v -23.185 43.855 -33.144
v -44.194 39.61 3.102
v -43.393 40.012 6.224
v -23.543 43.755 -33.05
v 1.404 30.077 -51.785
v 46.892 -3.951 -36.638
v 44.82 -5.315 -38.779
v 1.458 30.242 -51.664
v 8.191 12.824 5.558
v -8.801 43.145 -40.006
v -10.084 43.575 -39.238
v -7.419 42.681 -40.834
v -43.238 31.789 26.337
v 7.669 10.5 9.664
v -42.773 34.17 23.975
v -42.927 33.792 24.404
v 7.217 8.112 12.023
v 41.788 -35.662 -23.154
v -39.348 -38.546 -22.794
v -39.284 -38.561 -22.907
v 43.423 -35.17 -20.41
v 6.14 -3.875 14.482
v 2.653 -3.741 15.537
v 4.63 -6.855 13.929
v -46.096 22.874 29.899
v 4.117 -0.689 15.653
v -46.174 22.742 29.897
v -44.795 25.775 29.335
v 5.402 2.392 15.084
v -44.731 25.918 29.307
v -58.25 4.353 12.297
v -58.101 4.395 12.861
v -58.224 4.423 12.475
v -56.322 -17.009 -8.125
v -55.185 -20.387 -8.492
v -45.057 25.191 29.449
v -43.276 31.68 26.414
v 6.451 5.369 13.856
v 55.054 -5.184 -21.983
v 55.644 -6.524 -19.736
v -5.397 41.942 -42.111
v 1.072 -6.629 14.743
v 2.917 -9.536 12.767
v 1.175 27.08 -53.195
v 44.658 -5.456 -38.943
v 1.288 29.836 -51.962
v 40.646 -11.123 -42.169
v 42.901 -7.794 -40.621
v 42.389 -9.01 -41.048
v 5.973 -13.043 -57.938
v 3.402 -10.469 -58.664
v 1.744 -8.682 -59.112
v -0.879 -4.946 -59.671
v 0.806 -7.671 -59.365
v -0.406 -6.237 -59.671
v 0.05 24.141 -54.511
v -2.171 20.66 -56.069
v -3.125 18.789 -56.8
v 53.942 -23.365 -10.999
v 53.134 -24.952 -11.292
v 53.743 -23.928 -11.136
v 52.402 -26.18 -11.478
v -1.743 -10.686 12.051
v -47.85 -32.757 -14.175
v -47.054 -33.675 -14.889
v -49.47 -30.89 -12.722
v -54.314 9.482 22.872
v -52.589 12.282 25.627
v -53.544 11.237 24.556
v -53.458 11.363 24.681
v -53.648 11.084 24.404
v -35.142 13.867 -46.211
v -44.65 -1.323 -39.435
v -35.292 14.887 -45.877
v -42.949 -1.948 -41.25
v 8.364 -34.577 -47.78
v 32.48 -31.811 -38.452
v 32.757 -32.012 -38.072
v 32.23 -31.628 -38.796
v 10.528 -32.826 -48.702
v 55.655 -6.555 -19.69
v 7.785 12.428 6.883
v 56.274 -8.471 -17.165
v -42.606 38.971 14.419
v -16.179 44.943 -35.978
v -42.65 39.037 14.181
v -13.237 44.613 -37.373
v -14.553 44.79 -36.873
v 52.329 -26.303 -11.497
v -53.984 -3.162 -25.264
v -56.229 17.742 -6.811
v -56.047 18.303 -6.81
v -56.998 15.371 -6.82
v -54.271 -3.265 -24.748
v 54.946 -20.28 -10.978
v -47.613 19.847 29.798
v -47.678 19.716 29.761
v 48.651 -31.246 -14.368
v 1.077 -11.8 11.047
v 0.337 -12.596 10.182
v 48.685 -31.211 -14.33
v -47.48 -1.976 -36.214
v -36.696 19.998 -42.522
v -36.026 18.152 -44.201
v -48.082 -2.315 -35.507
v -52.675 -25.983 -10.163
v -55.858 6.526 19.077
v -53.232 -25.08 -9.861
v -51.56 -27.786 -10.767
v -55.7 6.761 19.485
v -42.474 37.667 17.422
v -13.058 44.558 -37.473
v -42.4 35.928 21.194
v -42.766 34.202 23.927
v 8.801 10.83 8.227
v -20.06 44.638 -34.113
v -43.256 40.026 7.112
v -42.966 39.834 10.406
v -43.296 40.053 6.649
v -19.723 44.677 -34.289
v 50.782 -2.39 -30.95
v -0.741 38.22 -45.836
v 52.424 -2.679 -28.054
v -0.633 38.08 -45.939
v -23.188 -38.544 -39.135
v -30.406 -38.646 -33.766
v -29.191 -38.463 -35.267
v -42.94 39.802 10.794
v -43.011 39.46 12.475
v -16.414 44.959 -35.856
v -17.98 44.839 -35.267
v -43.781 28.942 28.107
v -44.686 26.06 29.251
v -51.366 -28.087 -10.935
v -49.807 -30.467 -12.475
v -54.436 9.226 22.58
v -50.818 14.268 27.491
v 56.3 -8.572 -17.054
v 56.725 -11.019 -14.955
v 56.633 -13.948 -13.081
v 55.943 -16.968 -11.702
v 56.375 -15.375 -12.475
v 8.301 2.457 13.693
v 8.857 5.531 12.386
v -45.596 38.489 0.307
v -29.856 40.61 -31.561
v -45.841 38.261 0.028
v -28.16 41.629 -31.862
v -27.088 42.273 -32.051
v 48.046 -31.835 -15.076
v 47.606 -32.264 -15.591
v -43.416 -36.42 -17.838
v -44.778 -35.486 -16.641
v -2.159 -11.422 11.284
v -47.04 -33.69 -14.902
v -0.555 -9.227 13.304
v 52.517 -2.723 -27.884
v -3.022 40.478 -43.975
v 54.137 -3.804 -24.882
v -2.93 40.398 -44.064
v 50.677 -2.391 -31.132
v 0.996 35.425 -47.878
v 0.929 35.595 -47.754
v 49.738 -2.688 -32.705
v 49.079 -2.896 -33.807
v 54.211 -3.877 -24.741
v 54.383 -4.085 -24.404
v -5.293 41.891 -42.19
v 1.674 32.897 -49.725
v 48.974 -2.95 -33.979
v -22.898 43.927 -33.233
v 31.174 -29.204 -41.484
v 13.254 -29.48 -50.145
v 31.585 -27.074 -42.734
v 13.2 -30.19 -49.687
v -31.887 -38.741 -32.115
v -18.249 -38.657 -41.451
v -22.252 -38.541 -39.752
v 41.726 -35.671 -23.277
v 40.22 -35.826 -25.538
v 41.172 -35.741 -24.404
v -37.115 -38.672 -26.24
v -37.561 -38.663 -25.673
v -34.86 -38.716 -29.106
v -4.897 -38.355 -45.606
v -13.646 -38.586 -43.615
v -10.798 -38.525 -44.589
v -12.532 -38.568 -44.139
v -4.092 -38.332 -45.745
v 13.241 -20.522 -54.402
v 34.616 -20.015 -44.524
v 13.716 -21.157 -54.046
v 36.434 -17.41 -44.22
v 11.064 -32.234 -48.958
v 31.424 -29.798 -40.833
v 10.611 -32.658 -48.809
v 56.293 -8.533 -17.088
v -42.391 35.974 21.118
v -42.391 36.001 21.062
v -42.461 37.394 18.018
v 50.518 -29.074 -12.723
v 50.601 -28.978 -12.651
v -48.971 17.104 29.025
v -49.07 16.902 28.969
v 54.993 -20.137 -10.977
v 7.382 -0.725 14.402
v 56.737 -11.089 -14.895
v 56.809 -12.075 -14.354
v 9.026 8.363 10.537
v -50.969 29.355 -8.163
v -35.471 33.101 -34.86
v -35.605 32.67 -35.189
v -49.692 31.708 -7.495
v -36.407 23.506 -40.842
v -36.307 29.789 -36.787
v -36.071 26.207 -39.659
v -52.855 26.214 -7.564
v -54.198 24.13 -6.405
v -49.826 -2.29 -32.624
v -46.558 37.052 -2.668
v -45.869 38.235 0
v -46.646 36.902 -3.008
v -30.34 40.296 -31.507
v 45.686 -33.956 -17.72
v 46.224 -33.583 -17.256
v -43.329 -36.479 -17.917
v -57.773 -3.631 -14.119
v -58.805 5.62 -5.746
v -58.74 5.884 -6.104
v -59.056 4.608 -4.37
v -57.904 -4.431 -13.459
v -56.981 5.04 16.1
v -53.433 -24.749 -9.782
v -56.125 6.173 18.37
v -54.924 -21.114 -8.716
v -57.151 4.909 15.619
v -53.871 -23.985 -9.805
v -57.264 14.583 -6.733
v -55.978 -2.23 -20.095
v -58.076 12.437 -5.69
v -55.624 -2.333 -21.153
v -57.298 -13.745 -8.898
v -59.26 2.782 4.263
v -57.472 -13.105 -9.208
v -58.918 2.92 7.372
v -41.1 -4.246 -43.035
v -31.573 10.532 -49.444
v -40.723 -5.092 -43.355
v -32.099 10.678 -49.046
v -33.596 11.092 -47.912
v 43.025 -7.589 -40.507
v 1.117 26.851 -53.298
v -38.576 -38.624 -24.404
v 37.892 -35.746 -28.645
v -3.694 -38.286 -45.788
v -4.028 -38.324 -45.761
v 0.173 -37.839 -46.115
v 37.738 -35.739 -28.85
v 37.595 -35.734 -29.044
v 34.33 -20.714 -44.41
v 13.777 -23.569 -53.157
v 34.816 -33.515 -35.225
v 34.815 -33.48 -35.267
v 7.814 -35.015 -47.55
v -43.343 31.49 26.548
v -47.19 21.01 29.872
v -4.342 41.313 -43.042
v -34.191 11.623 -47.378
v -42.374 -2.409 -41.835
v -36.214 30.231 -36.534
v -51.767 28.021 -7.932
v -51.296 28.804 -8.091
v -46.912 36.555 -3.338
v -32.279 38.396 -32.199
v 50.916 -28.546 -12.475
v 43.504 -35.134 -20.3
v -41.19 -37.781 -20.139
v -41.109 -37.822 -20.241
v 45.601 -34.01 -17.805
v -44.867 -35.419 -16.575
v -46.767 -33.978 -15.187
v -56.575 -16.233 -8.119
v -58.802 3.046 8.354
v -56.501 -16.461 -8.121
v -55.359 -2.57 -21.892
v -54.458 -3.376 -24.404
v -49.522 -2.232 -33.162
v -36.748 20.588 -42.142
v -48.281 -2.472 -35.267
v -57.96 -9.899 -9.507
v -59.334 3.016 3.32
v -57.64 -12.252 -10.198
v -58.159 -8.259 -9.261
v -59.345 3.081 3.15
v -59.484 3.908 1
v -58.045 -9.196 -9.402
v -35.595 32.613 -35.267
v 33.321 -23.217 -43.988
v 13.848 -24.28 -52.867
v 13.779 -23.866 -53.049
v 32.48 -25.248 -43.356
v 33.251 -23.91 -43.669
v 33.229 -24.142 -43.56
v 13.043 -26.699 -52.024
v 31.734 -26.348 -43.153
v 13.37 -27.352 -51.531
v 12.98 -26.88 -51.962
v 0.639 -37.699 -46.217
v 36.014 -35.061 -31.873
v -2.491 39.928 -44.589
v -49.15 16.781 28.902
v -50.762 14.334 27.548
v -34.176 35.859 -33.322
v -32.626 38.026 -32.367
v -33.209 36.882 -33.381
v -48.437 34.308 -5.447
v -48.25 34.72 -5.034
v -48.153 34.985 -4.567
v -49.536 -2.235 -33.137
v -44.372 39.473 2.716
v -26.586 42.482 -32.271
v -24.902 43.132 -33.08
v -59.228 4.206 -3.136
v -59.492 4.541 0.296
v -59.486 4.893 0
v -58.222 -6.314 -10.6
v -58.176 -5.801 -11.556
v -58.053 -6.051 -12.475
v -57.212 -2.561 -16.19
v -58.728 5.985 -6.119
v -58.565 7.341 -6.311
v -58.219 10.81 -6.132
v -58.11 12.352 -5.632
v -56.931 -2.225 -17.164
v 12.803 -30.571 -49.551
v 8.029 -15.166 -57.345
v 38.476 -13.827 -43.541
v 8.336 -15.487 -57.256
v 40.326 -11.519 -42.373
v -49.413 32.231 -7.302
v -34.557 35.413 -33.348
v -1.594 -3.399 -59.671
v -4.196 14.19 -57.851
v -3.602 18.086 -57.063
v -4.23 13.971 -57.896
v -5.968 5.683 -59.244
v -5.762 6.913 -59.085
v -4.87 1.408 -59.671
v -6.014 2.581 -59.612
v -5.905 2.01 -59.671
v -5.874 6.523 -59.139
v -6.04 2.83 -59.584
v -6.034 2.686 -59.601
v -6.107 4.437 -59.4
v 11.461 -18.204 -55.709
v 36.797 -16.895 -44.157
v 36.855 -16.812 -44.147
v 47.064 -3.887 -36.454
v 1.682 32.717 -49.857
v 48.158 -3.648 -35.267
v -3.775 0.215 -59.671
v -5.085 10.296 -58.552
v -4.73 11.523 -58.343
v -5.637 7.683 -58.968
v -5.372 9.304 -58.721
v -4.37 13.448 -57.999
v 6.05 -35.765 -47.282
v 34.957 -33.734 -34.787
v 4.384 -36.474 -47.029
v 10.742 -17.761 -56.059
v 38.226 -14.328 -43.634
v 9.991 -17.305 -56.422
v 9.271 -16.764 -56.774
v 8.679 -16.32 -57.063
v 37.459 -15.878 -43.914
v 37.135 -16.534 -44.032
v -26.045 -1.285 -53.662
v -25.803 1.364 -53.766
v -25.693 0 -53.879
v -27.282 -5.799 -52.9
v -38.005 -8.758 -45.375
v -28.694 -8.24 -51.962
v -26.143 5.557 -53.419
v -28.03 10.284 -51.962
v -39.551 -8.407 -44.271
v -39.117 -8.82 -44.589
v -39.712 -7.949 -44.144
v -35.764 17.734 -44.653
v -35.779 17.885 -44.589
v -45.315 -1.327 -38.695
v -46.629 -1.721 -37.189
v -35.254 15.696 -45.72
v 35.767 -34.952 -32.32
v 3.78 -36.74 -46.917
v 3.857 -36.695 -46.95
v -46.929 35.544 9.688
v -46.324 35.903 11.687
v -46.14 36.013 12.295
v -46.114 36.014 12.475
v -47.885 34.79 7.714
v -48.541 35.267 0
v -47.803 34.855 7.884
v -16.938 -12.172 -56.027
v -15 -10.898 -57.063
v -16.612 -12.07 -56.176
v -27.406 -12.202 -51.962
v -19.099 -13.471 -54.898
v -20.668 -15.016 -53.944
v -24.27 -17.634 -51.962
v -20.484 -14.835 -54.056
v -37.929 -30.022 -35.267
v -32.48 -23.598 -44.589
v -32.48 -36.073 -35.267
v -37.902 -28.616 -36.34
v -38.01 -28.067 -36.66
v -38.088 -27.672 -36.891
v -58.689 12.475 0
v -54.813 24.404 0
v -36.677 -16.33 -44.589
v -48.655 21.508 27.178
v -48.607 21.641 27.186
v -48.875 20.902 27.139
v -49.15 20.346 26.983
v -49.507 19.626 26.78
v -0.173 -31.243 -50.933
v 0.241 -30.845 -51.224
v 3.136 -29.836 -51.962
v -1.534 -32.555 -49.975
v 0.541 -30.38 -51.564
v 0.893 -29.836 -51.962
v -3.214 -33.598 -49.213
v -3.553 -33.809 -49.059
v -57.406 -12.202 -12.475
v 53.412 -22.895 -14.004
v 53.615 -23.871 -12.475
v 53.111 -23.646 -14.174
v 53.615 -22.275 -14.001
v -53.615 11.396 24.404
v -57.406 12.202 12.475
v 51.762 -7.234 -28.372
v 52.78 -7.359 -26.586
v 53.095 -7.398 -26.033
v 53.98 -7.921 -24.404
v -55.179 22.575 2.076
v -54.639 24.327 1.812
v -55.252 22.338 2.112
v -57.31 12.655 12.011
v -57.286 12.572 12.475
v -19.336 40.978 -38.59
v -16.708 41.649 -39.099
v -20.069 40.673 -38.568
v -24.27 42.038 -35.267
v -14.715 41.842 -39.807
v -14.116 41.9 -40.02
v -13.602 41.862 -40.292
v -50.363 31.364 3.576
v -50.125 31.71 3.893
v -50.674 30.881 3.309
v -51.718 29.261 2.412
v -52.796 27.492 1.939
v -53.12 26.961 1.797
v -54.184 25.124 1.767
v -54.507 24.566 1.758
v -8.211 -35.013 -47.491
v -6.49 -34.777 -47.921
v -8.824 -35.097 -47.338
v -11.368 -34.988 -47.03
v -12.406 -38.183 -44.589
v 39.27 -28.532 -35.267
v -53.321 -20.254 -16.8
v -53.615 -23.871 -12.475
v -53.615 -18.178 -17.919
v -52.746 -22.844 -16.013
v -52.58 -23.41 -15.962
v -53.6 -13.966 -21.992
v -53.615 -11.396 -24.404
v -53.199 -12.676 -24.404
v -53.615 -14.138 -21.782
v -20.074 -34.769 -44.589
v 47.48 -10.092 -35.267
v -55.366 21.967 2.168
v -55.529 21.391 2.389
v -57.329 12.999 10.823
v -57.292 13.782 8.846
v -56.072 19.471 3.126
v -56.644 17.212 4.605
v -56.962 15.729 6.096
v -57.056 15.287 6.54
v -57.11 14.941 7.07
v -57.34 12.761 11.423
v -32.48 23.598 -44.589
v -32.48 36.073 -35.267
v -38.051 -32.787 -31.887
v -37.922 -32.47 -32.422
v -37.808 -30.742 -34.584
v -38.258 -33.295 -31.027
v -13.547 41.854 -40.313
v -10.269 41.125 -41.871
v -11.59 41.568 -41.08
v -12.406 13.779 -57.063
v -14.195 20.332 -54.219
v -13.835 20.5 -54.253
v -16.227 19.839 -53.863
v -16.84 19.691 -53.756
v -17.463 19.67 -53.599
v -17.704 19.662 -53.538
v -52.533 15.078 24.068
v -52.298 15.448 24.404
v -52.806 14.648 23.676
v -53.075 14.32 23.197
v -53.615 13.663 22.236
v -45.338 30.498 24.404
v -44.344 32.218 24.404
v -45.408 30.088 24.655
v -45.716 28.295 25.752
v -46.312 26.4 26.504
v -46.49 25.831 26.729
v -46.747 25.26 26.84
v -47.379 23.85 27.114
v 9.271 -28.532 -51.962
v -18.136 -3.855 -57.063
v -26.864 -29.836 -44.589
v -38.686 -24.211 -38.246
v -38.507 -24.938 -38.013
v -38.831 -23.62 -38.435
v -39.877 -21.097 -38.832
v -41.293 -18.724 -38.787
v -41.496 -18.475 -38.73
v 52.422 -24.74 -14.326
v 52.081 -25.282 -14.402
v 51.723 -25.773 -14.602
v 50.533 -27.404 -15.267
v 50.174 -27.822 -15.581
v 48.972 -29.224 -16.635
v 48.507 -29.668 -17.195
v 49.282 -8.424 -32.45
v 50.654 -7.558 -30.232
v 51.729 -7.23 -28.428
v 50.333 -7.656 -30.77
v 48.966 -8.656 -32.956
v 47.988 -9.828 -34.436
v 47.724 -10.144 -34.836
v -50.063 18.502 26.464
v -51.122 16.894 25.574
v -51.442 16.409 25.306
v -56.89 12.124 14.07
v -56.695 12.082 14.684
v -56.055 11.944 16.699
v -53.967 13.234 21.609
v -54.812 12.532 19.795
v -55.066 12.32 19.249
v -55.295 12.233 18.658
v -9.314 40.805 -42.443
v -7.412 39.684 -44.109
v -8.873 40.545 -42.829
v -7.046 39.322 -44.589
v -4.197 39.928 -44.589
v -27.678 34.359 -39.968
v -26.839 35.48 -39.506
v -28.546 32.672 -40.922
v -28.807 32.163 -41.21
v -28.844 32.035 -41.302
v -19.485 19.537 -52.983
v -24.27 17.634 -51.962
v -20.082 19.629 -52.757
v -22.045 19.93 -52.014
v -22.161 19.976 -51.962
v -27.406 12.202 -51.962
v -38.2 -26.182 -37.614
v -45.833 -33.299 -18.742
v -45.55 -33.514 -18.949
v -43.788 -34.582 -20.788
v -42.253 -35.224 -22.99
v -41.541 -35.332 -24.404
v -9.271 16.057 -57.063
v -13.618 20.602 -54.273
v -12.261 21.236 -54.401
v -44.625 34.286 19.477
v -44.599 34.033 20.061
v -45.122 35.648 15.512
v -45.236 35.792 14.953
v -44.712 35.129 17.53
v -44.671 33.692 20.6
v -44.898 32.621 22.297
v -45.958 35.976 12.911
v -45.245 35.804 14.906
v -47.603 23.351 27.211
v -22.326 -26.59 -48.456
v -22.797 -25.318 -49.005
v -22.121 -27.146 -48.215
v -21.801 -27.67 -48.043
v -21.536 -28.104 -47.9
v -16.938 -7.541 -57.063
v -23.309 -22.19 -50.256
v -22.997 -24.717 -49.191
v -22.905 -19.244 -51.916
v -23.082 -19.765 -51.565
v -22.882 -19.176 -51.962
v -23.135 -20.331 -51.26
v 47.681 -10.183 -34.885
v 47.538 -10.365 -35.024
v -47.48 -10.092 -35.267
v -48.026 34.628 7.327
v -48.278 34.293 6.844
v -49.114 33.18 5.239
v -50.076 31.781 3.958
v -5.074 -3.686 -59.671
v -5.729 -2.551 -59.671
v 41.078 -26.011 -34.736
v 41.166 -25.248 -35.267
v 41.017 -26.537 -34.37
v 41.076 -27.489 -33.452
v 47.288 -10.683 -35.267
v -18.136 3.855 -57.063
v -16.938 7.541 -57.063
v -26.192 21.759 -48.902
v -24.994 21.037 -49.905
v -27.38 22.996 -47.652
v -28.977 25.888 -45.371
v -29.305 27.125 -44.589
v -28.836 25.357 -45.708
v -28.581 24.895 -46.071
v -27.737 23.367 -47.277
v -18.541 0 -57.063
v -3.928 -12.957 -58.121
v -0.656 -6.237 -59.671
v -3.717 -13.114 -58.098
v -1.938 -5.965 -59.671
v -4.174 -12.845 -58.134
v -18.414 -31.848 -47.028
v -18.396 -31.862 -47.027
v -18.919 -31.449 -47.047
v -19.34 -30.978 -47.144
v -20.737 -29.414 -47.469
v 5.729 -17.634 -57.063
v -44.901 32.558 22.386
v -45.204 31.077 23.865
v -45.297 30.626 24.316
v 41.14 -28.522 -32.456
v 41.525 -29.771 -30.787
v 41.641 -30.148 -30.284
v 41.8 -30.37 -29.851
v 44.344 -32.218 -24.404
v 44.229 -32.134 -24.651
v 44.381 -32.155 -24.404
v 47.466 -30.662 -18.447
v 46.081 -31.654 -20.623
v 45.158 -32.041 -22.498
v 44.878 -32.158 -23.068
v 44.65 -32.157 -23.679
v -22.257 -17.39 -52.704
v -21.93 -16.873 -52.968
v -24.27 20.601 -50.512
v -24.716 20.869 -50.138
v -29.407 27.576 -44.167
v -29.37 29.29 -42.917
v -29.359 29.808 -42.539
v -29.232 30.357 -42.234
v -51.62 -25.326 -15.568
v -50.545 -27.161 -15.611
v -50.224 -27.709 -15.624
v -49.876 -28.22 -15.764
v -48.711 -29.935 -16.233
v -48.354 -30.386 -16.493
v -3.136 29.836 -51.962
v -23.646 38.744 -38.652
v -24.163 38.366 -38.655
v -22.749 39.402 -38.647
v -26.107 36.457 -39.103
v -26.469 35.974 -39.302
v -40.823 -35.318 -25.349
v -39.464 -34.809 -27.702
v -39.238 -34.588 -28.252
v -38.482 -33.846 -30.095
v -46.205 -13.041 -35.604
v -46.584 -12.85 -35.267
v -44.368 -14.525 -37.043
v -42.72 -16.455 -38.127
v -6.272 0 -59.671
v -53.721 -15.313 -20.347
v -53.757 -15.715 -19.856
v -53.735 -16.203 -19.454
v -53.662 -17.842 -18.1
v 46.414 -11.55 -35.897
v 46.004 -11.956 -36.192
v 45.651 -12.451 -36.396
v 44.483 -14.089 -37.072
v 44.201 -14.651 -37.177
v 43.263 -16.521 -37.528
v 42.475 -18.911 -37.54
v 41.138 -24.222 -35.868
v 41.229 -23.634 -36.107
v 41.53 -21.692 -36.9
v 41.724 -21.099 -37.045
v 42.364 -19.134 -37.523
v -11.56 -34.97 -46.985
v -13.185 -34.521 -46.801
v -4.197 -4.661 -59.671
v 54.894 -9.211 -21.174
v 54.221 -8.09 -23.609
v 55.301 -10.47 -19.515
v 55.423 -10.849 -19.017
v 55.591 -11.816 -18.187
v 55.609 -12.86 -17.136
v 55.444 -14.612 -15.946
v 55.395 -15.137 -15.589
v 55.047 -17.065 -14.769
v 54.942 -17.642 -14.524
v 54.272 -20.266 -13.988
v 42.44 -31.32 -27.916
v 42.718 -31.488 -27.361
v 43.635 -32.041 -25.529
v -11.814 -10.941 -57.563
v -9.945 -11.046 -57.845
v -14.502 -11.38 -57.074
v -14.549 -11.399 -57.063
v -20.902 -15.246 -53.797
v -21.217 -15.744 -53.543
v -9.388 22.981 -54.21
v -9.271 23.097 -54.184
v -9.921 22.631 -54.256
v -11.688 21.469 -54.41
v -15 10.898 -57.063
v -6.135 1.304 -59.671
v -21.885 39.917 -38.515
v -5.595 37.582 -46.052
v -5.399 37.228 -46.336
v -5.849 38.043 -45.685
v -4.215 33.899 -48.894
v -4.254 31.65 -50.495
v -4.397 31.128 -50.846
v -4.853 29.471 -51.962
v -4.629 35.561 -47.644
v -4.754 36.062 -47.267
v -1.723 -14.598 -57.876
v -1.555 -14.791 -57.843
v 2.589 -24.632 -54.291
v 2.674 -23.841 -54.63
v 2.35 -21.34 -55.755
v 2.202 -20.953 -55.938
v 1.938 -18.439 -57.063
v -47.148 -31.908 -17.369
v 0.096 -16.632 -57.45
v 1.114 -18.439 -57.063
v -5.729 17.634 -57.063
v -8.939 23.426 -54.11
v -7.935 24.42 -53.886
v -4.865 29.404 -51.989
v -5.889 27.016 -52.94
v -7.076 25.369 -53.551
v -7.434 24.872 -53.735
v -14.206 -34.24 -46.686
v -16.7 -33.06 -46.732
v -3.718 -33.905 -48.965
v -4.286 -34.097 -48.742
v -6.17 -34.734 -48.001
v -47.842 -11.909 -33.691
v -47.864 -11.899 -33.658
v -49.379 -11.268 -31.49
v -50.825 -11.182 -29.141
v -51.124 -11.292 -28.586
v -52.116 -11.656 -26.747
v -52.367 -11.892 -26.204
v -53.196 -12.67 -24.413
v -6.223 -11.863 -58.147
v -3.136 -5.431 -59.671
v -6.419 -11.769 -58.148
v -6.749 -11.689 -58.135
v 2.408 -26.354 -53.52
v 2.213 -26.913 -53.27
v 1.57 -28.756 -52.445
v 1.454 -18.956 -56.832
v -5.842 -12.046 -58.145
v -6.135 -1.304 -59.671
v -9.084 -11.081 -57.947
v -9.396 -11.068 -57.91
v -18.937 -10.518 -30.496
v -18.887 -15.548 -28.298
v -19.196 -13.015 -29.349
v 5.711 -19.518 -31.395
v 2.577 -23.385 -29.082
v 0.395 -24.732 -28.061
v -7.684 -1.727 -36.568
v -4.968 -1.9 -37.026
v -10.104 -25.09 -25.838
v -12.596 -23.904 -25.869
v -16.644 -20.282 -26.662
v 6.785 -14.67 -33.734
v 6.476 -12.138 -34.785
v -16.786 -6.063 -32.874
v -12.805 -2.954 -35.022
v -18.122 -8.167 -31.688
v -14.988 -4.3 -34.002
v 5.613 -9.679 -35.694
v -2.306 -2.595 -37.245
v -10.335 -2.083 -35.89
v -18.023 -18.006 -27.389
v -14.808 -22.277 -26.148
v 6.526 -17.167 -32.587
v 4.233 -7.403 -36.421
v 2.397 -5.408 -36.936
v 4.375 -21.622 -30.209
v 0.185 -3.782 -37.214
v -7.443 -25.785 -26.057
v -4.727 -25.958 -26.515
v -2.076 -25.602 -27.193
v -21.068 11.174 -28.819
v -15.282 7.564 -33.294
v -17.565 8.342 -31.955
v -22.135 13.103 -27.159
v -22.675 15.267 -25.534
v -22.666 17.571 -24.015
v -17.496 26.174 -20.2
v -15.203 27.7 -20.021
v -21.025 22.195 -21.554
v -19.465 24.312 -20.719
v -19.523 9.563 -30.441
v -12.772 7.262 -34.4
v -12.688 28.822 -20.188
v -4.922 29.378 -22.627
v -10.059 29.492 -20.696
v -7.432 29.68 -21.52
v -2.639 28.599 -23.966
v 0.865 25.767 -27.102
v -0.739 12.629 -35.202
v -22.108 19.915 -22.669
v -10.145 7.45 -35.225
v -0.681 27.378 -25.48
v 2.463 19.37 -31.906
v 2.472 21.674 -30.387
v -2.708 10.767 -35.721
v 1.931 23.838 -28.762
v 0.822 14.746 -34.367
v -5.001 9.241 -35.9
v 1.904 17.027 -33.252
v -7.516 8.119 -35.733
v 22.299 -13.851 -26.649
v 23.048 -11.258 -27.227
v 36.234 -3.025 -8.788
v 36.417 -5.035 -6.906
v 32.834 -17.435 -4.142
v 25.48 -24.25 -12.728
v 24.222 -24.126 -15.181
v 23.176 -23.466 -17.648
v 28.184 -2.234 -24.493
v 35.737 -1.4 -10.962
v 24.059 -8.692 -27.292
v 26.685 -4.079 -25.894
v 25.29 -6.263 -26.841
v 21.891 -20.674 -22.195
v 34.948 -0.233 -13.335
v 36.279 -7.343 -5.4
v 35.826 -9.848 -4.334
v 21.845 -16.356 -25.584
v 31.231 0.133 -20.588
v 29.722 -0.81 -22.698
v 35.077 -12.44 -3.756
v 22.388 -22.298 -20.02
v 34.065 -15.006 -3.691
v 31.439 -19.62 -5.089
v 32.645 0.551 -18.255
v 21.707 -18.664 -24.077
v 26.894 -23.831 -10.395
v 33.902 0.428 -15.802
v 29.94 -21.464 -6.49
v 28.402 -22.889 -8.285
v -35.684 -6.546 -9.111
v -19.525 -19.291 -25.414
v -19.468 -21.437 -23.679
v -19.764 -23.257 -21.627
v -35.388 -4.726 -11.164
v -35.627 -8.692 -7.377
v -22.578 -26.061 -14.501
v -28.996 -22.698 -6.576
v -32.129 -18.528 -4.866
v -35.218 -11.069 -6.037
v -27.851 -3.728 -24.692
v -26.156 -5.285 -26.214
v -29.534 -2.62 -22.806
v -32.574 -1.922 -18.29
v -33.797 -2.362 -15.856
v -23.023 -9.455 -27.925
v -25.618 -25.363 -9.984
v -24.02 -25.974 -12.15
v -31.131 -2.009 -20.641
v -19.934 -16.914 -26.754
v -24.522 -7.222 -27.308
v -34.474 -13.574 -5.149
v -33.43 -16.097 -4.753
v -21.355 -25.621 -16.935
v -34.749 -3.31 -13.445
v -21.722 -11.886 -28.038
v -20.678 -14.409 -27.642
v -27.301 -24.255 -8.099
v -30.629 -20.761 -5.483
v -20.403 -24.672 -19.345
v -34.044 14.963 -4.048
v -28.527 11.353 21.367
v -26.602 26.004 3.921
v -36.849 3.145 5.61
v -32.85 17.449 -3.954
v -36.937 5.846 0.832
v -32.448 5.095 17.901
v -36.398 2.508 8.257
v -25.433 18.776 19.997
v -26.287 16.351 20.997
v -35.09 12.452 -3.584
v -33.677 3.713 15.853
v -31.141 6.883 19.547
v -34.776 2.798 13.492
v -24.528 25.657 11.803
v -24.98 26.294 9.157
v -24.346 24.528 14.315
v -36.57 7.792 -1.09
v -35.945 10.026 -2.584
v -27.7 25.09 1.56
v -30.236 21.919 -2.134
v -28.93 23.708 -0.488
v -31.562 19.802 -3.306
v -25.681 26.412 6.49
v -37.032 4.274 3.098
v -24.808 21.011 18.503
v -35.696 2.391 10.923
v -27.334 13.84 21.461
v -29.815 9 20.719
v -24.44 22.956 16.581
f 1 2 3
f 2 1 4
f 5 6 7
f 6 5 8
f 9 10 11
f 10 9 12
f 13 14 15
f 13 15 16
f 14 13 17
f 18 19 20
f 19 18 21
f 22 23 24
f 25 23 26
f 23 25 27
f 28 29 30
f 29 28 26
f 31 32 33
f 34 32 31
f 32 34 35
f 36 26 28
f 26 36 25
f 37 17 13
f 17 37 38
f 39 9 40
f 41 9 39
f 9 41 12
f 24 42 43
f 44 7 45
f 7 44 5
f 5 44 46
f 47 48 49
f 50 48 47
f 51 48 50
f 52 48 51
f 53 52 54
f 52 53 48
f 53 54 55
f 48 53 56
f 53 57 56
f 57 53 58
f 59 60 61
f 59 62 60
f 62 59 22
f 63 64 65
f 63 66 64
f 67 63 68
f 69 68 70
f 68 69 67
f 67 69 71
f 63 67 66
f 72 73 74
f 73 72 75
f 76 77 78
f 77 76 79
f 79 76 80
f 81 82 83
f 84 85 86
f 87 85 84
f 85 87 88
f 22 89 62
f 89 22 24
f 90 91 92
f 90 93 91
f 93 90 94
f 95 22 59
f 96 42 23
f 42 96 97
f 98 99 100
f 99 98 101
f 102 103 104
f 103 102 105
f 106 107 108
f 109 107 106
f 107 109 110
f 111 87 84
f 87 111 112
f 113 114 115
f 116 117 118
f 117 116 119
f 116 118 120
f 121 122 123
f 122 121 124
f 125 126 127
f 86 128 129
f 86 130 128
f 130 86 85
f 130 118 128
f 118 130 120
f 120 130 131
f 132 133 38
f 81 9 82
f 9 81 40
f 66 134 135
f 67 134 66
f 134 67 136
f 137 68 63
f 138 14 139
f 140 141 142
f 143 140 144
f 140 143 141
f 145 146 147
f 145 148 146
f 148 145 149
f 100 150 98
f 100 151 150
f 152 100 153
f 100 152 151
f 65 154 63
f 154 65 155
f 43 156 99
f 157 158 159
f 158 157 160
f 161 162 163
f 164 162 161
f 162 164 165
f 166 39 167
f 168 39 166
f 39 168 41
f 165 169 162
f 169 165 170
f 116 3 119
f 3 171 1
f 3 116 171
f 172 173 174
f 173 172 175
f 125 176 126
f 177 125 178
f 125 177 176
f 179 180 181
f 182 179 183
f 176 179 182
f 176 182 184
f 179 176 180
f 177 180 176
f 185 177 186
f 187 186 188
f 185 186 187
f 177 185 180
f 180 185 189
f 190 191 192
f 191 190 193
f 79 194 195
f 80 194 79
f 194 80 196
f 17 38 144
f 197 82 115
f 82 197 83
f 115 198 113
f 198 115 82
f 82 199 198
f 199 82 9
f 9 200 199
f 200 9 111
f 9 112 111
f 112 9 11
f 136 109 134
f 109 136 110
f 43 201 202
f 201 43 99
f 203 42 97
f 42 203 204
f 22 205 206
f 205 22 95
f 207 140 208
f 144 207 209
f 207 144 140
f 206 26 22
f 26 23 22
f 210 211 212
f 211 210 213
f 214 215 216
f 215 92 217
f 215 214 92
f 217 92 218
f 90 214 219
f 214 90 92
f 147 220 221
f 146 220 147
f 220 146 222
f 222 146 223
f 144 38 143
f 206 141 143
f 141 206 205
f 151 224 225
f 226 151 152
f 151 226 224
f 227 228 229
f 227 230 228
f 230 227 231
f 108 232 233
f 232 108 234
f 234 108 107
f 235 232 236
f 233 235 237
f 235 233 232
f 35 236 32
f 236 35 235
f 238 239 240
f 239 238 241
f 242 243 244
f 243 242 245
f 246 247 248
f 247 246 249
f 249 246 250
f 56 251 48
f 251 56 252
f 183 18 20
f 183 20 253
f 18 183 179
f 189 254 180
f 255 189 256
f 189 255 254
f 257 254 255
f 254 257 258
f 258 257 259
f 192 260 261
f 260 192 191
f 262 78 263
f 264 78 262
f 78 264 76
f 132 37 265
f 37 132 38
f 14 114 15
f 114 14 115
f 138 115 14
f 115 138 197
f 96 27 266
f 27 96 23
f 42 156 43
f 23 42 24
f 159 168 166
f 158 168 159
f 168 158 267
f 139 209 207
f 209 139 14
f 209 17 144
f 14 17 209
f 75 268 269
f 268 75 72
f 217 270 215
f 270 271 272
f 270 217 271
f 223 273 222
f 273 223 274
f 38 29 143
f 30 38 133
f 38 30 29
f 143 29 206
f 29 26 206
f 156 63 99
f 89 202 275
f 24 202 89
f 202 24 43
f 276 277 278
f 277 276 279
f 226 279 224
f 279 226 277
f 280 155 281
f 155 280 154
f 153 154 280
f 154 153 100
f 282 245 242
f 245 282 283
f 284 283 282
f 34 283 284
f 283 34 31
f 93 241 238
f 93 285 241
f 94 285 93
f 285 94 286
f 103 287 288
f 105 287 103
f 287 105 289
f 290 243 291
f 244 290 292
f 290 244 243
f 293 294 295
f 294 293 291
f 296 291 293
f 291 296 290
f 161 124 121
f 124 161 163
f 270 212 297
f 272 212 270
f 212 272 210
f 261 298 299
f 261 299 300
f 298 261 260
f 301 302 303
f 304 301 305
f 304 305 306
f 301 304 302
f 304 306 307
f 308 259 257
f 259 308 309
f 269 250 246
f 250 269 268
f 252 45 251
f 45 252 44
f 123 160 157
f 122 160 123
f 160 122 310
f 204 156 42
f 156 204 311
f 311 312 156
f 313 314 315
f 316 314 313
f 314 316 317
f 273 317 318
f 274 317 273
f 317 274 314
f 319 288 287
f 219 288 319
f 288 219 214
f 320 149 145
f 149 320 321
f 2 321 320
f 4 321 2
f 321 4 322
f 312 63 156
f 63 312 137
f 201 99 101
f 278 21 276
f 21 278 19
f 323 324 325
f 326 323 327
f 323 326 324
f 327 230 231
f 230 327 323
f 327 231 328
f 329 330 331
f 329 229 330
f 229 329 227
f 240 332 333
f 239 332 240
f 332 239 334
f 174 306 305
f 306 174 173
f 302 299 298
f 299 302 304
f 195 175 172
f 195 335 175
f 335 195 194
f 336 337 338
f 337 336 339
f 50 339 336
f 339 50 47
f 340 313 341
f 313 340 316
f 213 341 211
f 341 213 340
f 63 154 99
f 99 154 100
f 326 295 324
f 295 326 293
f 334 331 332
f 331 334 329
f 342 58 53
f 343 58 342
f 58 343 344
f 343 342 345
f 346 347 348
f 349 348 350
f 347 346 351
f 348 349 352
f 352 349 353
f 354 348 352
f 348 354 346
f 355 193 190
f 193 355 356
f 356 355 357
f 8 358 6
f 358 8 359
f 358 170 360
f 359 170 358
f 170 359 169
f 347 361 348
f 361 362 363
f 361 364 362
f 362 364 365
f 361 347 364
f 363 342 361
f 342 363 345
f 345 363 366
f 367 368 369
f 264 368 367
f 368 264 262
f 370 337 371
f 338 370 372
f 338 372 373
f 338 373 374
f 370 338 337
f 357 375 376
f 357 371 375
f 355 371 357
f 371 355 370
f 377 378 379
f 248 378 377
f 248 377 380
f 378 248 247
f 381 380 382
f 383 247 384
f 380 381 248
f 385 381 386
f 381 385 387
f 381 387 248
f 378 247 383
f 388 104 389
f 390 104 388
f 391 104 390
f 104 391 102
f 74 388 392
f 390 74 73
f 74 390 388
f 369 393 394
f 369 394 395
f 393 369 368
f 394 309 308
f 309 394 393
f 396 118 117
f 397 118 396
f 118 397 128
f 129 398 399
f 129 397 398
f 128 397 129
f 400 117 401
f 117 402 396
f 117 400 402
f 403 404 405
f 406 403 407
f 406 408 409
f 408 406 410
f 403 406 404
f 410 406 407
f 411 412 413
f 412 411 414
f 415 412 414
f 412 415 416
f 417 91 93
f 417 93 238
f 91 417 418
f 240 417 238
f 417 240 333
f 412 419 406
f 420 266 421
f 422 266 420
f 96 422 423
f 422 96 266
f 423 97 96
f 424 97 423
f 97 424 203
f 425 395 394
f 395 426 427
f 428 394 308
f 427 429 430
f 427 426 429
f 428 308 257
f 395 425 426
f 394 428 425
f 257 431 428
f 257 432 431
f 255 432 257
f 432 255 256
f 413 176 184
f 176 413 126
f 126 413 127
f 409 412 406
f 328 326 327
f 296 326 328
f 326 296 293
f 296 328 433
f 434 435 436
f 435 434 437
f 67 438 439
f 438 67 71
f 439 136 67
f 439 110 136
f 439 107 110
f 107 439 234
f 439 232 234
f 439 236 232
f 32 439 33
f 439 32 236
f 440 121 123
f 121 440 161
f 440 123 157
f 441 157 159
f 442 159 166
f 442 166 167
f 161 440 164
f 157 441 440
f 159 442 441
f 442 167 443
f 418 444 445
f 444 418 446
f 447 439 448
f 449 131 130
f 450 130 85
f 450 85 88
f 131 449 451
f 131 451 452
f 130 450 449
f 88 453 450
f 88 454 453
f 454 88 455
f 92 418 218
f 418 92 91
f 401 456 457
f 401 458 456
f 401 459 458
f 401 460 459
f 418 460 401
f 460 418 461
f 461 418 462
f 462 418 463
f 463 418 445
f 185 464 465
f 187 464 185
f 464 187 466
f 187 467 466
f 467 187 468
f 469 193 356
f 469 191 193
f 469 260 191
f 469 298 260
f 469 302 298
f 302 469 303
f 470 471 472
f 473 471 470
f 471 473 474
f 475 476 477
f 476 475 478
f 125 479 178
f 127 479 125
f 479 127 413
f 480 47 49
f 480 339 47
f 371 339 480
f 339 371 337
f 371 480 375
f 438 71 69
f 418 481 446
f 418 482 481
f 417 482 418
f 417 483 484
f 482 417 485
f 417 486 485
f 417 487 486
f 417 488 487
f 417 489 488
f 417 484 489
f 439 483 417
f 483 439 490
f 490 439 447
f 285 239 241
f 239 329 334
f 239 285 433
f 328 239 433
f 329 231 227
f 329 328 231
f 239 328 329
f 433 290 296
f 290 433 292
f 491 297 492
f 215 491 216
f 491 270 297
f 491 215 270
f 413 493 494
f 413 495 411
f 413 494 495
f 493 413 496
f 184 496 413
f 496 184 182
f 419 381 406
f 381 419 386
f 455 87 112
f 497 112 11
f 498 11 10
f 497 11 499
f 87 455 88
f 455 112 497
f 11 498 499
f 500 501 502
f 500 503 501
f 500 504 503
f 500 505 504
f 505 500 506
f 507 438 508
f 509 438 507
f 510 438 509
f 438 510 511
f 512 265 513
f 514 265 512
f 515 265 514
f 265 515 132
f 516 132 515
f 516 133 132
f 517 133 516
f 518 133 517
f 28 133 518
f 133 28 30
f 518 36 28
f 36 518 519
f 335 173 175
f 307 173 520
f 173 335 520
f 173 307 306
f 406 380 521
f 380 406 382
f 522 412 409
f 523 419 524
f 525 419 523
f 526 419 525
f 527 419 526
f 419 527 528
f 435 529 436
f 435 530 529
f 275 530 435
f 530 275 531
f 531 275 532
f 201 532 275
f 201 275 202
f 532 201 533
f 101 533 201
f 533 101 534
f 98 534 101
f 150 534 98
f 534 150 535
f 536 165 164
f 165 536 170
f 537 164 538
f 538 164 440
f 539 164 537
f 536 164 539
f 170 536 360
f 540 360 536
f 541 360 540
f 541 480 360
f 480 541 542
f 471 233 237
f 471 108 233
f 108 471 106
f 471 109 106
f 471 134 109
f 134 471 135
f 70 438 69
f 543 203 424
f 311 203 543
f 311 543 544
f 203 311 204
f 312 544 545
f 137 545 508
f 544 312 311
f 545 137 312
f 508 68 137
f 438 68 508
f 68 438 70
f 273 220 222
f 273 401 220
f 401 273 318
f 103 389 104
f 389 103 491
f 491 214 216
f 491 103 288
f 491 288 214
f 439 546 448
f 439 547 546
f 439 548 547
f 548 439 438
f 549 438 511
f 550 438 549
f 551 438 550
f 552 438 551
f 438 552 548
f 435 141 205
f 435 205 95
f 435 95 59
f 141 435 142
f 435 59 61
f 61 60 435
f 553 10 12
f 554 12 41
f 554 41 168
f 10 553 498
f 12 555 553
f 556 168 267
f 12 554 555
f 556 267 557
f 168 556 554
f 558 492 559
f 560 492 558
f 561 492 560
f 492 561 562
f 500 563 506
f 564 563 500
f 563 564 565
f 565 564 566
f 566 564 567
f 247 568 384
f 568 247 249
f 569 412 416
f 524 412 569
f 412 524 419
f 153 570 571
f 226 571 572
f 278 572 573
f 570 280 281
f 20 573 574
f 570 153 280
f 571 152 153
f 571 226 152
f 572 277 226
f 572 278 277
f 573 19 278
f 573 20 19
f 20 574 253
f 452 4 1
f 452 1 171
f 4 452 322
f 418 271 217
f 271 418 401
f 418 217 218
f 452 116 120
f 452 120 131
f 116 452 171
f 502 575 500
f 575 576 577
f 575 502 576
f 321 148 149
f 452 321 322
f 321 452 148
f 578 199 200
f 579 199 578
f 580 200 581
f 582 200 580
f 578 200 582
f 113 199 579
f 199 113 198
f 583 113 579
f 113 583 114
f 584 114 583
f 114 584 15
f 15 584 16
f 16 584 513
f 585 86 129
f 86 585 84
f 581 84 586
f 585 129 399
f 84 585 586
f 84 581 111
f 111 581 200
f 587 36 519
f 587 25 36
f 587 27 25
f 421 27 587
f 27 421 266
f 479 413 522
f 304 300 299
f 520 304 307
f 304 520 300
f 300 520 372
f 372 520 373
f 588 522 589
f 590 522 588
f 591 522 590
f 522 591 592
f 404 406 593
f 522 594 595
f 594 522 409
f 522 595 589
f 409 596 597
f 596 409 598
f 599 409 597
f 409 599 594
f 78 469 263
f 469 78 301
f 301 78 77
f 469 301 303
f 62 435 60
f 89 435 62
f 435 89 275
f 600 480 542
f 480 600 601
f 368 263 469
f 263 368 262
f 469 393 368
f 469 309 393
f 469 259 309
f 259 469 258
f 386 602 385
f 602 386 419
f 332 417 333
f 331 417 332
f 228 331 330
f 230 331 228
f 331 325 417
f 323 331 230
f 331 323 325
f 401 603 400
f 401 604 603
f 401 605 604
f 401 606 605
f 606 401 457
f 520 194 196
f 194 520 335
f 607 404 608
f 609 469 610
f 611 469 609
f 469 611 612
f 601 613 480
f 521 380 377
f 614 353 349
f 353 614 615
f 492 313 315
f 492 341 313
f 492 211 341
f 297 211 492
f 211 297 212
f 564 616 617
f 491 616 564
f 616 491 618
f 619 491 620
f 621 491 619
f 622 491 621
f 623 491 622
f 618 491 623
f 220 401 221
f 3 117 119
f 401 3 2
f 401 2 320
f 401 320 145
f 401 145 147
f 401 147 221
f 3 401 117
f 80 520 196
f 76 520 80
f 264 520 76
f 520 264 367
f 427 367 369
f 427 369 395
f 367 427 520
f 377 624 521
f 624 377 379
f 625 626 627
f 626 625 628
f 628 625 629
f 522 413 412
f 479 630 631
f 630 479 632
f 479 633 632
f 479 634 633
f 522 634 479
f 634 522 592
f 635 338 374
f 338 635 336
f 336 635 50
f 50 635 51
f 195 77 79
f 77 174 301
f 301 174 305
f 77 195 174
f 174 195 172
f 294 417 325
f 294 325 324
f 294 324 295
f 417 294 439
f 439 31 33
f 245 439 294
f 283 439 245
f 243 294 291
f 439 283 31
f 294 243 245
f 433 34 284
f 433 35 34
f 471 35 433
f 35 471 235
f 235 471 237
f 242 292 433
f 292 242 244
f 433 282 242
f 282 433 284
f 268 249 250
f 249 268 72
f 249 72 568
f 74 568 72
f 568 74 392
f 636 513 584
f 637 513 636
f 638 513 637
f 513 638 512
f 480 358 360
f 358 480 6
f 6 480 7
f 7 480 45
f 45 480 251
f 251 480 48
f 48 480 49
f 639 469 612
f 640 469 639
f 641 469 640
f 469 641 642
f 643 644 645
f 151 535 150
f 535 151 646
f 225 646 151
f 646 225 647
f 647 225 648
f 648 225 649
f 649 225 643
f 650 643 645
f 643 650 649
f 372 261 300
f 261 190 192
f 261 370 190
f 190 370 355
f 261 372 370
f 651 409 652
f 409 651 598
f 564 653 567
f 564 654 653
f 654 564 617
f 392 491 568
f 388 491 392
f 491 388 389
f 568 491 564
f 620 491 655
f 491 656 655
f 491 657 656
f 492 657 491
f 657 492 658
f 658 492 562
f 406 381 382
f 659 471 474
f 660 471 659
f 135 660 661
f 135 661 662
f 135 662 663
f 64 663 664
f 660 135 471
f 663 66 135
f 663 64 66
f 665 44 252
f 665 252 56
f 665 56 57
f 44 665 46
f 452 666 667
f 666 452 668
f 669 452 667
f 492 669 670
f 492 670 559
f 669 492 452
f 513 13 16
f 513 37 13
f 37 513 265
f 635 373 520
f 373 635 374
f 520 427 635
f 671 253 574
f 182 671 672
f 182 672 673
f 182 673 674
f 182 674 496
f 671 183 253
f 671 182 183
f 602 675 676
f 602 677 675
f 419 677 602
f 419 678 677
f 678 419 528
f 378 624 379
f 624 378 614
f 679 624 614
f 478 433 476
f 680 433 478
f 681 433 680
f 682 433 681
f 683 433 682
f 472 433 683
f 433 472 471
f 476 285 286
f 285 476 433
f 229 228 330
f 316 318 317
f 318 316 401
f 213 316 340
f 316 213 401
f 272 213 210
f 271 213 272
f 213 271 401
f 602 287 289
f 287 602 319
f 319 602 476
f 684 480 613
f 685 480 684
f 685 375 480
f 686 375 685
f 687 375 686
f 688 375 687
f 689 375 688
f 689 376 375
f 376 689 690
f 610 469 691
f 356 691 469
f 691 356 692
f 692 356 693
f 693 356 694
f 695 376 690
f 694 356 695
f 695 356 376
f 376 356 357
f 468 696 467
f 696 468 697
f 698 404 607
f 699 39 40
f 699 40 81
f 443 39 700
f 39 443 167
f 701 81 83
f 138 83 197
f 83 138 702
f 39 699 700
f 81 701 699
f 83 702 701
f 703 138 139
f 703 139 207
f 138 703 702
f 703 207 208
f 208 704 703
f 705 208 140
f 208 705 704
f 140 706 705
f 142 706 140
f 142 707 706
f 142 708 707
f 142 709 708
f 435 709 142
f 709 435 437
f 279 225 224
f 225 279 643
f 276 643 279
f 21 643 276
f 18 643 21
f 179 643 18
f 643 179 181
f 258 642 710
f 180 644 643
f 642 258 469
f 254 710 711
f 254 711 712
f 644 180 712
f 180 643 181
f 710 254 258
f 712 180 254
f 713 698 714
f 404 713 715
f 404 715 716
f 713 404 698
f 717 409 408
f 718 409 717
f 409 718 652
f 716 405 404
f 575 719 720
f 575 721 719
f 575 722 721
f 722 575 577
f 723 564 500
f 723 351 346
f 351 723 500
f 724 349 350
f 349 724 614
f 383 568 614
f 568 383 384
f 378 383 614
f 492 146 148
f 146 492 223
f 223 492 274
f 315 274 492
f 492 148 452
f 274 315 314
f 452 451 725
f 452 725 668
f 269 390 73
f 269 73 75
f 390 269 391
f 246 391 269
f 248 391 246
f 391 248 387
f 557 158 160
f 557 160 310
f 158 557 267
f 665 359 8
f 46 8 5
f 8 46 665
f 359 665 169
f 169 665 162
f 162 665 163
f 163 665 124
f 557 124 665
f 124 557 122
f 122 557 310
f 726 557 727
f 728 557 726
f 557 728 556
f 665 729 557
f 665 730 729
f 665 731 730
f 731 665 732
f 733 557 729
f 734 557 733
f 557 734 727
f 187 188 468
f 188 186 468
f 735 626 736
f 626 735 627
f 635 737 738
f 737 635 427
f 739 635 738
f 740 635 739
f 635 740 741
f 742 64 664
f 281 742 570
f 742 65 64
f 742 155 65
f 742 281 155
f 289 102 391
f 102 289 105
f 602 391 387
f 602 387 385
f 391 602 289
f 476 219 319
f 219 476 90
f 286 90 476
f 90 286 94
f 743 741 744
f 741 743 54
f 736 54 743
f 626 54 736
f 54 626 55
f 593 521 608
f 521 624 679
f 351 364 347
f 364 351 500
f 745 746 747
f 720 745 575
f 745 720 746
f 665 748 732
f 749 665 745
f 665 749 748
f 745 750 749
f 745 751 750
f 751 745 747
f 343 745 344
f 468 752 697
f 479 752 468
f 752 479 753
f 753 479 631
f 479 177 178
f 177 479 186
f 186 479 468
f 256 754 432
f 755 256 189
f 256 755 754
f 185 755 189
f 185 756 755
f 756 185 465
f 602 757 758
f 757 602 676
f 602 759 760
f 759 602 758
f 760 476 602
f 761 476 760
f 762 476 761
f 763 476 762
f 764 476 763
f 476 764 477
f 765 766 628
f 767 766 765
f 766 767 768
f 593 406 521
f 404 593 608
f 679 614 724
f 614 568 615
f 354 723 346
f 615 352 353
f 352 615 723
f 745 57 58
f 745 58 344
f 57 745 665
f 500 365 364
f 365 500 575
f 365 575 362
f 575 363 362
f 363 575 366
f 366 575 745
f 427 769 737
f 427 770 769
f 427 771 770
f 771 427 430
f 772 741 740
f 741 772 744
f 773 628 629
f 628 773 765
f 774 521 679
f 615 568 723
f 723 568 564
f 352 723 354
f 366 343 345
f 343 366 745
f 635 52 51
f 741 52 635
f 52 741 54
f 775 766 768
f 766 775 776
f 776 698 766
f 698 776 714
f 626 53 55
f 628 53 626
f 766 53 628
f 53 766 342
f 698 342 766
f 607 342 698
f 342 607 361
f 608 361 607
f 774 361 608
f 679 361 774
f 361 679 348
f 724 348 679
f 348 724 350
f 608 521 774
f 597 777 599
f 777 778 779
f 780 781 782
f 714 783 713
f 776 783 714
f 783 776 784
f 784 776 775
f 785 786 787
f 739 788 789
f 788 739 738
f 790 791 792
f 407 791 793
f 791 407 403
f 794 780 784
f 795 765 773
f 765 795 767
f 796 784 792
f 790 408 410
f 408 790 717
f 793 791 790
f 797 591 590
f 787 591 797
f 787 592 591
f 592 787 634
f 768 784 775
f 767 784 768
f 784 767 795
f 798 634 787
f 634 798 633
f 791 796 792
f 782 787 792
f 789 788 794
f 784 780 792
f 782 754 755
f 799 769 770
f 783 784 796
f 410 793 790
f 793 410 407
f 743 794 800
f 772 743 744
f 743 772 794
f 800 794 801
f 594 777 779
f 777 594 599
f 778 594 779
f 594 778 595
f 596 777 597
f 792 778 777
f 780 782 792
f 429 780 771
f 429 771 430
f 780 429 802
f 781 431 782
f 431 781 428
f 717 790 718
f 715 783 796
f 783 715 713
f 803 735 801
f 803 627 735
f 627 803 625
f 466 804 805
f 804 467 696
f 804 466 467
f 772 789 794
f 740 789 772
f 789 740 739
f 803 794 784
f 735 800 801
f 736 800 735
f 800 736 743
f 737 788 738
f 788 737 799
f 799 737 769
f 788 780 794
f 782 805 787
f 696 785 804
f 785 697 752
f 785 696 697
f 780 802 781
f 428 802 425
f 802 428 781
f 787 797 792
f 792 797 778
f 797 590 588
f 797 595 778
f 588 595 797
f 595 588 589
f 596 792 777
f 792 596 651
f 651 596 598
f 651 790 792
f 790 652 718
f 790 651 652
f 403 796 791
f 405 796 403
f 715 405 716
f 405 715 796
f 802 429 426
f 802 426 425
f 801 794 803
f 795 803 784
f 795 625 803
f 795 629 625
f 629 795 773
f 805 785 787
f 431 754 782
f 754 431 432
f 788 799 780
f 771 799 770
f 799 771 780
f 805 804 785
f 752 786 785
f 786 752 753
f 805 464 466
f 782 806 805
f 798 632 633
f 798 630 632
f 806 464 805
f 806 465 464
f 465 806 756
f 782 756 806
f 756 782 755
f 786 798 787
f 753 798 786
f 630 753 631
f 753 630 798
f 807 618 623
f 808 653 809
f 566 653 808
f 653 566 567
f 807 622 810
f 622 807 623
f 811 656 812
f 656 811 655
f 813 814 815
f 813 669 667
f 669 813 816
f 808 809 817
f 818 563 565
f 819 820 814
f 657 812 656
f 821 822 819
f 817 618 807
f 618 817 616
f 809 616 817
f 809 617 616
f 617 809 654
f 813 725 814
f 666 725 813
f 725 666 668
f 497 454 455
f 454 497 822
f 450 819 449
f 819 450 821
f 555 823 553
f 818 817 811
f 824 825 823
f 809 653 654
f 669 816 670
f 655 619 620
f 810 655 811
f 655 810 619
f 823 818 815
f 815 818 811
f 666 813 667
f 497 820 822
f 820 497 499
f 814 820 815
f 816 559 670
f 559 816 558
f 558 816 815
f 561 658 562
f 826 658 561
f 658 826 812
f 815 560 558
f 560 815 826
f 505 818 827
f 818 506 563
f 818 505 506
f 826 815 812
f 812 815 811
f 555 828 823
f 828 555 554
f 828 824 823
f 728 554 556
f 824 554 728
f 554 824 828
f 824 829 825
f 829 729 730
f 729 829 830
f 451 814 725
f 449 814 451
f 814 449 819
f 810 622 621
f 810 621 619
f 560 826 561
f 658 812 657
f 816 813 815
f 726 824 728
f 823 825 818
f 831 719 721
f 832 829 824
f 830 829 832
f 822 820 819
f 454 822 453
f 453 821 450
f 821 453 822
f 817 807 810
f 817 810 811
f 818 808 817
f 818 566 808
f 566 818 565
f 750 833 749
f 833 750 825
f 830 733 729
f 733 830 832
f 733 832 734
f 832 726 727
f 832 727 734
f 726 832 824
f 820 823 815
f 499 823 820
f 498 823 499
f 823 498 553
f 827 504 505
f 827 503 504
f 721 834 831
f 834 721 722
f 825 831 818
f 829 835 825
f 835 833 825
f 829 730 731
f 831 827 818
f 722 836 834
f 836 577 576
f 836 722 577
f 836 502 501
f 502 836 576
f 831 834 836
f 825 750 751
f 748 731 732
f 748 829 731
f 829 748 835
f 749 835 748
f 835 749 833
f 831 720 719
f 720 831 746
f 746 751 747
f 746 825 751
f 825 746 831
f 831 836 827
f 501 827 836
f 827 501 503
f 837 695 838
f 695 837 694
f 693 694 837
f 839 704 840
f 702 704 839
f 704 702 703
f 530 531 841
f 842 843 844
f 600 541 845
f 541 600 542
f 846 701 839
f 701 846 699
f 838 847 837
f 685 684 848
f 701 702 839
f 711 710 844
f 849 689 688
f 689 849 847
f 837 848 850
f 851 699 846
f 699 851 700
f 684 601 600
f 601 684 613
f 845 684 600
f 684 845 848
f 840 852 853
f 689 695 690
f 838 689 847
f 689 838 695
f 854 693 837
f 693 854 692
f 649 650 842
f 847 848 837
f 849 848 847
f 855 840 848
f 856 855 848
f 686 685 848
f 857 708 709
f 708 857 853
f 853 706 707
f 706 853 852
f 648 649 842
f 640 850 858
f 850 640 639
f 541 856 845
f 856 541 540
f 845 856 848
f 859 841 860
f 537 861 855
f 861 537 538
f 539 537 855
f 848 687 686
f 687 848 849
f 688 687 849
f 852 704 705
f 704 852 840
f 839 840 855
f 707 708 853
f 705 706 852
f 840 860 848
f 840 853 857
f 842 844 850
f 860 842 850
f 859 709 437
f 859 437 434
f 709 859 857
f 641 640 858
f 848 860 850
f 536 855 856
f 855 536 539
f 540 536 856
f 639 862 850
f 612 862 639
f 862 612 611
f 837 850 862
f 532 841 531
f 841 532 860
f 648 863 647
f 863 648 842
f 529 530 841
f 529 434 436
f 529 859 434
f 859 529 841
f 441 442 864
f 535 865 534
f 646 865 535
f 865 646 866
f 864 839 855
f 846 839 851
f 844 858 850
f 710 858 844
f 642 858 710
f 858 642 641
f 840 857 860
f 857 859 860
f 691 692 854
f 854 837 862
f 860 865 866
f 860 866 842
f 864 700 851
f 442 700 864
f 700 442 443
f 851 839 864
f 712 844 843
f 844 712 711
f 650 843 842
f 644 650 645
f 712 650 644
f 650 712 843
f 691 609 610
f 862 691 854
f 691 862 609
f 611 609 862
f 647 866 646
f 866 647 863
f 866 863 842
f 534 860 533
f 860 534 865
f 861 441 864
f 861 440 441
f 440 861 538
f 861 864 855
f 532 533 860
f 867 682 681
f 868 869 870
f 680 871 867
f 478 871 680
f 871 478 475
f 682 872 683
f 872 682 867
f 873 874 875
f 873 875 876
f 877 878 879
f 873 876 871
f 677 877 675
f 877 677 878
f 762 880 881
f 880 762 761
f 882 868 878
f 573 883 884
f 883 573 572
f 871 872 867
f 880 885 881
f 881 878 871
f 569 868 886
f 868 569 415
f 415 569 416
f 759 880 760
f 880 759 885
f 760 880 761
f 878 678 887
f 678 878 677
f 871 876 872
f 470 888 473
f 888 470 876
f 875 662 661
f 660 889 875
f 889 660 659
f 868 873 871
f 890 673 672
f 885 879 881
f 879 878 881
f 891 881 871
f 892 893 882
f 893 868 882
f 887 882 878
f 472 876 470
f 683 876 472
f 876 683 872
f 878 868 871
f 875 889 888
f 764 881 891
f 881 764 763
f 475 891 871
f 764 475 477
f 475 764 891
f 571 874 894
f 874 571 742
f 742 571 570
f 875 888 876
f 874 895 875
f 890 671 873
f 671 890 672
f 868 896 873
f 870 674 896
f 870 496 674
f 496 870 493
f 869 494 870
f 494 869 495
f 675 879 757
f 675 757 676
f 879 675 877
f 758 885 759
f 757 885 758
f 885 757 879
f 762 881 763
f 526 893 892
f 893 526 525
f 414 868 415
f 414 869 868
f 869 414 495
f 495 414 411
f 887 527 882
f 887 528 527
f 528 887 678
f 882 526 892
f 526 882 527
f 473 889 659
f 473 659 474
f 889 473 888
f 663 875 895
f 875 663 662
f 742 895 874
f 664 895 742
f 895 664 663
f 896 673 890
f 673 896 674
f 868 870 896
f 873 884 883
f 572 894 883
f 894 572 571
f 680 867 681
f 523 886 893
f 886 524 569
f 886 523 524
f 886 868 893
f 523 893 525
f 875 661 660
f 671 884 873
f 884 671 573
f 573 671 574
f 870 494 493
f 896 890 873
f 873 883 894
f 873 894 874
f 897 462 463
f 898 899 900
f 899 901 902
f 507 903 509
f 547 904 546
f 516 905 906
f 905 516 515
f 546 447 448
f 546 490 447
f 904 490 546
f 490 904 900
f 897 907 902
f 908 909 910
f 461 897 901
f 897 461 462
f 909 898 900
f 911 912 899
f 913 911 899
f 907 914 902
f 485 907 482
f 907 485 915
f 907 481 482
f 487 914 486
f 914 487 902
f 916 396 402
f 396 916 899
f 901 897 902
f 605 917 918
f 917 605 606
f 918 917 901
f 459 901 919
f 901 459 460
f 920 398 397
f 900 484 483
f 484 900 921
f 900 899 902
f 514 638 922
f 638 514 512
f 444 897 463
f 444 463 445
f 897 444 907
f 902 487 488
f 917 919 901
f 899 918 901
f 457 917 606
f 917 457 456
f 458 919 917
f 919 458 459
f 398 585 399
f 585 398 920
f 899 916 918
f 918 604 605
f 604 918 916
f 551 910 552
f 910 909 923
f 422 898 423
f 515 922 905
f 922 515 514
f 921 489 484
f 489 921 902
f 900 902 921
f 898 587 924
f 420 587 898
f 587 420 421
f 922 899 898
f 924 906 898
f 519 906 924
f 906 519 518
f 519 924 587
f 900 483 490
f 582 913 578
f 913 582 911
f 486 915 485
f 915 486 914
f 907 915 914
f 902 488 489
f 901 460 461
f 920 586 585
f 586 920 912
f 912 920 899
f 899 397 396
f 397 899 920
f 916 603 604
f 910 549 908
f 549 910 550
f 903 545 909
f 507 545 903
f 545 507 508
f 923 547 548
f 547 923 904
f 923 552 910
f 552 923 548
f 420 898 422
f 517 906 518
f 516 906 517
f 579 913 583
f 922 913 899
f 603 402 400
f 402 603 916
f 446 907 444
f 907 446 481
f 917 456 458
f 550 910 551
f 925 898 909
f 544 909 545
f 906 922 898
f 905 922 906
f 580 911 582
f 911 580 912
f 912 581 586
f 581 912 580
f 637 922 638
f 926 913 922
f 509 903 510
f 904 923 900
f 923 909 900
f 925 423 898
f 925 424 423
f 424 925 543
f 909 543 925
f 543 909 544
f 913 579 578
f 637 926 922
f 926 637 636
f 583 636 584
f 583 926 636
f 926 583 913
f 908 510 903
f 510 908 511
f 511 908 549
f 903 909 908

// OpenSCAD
difference() {
	intersection() {
		hull() {
			rotate(a = -104.5489988397, v = [0.1432726028, -0.9572708972, 0.0000000000]) {
				rotate(a = -90.0000000000, v = [-0.2230711837, -0.9748021579, 0.0000000000]) {
					cylinder(h = 60, r = 16.2000000000);
				}
			}
			rotate(a = -104.5489988397, v = [0.1432726028, -0.9572708972, 0.0000000000]) {
				rotate(a = -90.0000000000, v = [0.6805863909, -0.7326678405, 0.0000000000]) {
					cylinder(h = 60, r = 16.2000000000);
				}
			}
			rotate(a = -104.5489988397, v = [0.1432726028, -0.9572708972, 0.0000000000]) {
				rotate(a = -30.9572897354, v = [-0.4179419891, -0.2998846339, 0.0000000000]) {
					cylinder(h = 60, r = 16.2000000000);
				}
			}
			rotate(a = -104.5489988397, v = [0.1432726028, -0.9572708972, 0.0000000000]) {
				rotate(a = -133.9329822888, v = [-0.1773704501, -0.6979673274, 0.0000000000]) {
					cylinder(h = 60, r = 16.2000000000);
				}
			}
			rotate(a = -104.5489988397, v = [0.1432726028, -0.9572708972, 0.0000000000]) {
				rotate(a = -147.4470048335, v = [0.5251456438, 0.1172670603, -0.0000000000]) {
					cylinder(h = 60, r = 16.2000000000);
				}
			}
		}
		sphere(r = 60);
	}
	union() {
		rotate(a = -104.5489988397, v = [0.1432726028, -0.9572708972, 0.0000000000]) {
			rotate(a = -90.0000000000, v = [-0.2230711837, -0.9748021579, 0.0000000000]) {
				translate(v = [0, 0, 35]) {
					cylinder(h = 100, r = 13.2000000000);
				}
			}
		}
		rotate(a = -104.5489988397, v = [0.1432726028, -0.9572708972, 0.0000000000]) {
			rotate(a = -90.0000000000, v = [0.6805863909, -0.7326678405, 0.0000000000]) {
				translate(v = [0, 0, 35]) {
					cylinder(h = 100, r = 13.2000000000);
				}
			}
		}
		rotate(a = -104.5489988397, v = [0.1432726028, -0.9572708972, 0.0000000000]) {
			rotate(a = -30.9572897354, v = [-0.4179419891, -0.2998846339, 0.0000000000]) {
				translate(v = [0, 0, 35]) {
					cylinder(h = 100, r = 13.2000000000);
				}
			}
		}
		rotate(a = -104.5489988397, v = [0.1432726028, -0.9572708972, 0.0000000000]) {
			rotate(a = -133.9329822888, v = [-0.1773704501, -0.6979673274, 0.0000000000]) {
				translate(v = [0, 0, 35]) {
					cylinder(h = 100, r = 13.2000000000);
				}
			}
		}
		rotate(a = -104.5489988397, v = [0.1432726028, -0.9572708972, 0.0000000000]) {
			rotate(a = -147.4470048335, v = [0.5251456438, 0.1172670603, -0.0000000000]) {
				translate(v = [0, 0, 35]) {
					cylinder(h = 100, r = 13.2000000000);
				}
			}
		}
	}
}
